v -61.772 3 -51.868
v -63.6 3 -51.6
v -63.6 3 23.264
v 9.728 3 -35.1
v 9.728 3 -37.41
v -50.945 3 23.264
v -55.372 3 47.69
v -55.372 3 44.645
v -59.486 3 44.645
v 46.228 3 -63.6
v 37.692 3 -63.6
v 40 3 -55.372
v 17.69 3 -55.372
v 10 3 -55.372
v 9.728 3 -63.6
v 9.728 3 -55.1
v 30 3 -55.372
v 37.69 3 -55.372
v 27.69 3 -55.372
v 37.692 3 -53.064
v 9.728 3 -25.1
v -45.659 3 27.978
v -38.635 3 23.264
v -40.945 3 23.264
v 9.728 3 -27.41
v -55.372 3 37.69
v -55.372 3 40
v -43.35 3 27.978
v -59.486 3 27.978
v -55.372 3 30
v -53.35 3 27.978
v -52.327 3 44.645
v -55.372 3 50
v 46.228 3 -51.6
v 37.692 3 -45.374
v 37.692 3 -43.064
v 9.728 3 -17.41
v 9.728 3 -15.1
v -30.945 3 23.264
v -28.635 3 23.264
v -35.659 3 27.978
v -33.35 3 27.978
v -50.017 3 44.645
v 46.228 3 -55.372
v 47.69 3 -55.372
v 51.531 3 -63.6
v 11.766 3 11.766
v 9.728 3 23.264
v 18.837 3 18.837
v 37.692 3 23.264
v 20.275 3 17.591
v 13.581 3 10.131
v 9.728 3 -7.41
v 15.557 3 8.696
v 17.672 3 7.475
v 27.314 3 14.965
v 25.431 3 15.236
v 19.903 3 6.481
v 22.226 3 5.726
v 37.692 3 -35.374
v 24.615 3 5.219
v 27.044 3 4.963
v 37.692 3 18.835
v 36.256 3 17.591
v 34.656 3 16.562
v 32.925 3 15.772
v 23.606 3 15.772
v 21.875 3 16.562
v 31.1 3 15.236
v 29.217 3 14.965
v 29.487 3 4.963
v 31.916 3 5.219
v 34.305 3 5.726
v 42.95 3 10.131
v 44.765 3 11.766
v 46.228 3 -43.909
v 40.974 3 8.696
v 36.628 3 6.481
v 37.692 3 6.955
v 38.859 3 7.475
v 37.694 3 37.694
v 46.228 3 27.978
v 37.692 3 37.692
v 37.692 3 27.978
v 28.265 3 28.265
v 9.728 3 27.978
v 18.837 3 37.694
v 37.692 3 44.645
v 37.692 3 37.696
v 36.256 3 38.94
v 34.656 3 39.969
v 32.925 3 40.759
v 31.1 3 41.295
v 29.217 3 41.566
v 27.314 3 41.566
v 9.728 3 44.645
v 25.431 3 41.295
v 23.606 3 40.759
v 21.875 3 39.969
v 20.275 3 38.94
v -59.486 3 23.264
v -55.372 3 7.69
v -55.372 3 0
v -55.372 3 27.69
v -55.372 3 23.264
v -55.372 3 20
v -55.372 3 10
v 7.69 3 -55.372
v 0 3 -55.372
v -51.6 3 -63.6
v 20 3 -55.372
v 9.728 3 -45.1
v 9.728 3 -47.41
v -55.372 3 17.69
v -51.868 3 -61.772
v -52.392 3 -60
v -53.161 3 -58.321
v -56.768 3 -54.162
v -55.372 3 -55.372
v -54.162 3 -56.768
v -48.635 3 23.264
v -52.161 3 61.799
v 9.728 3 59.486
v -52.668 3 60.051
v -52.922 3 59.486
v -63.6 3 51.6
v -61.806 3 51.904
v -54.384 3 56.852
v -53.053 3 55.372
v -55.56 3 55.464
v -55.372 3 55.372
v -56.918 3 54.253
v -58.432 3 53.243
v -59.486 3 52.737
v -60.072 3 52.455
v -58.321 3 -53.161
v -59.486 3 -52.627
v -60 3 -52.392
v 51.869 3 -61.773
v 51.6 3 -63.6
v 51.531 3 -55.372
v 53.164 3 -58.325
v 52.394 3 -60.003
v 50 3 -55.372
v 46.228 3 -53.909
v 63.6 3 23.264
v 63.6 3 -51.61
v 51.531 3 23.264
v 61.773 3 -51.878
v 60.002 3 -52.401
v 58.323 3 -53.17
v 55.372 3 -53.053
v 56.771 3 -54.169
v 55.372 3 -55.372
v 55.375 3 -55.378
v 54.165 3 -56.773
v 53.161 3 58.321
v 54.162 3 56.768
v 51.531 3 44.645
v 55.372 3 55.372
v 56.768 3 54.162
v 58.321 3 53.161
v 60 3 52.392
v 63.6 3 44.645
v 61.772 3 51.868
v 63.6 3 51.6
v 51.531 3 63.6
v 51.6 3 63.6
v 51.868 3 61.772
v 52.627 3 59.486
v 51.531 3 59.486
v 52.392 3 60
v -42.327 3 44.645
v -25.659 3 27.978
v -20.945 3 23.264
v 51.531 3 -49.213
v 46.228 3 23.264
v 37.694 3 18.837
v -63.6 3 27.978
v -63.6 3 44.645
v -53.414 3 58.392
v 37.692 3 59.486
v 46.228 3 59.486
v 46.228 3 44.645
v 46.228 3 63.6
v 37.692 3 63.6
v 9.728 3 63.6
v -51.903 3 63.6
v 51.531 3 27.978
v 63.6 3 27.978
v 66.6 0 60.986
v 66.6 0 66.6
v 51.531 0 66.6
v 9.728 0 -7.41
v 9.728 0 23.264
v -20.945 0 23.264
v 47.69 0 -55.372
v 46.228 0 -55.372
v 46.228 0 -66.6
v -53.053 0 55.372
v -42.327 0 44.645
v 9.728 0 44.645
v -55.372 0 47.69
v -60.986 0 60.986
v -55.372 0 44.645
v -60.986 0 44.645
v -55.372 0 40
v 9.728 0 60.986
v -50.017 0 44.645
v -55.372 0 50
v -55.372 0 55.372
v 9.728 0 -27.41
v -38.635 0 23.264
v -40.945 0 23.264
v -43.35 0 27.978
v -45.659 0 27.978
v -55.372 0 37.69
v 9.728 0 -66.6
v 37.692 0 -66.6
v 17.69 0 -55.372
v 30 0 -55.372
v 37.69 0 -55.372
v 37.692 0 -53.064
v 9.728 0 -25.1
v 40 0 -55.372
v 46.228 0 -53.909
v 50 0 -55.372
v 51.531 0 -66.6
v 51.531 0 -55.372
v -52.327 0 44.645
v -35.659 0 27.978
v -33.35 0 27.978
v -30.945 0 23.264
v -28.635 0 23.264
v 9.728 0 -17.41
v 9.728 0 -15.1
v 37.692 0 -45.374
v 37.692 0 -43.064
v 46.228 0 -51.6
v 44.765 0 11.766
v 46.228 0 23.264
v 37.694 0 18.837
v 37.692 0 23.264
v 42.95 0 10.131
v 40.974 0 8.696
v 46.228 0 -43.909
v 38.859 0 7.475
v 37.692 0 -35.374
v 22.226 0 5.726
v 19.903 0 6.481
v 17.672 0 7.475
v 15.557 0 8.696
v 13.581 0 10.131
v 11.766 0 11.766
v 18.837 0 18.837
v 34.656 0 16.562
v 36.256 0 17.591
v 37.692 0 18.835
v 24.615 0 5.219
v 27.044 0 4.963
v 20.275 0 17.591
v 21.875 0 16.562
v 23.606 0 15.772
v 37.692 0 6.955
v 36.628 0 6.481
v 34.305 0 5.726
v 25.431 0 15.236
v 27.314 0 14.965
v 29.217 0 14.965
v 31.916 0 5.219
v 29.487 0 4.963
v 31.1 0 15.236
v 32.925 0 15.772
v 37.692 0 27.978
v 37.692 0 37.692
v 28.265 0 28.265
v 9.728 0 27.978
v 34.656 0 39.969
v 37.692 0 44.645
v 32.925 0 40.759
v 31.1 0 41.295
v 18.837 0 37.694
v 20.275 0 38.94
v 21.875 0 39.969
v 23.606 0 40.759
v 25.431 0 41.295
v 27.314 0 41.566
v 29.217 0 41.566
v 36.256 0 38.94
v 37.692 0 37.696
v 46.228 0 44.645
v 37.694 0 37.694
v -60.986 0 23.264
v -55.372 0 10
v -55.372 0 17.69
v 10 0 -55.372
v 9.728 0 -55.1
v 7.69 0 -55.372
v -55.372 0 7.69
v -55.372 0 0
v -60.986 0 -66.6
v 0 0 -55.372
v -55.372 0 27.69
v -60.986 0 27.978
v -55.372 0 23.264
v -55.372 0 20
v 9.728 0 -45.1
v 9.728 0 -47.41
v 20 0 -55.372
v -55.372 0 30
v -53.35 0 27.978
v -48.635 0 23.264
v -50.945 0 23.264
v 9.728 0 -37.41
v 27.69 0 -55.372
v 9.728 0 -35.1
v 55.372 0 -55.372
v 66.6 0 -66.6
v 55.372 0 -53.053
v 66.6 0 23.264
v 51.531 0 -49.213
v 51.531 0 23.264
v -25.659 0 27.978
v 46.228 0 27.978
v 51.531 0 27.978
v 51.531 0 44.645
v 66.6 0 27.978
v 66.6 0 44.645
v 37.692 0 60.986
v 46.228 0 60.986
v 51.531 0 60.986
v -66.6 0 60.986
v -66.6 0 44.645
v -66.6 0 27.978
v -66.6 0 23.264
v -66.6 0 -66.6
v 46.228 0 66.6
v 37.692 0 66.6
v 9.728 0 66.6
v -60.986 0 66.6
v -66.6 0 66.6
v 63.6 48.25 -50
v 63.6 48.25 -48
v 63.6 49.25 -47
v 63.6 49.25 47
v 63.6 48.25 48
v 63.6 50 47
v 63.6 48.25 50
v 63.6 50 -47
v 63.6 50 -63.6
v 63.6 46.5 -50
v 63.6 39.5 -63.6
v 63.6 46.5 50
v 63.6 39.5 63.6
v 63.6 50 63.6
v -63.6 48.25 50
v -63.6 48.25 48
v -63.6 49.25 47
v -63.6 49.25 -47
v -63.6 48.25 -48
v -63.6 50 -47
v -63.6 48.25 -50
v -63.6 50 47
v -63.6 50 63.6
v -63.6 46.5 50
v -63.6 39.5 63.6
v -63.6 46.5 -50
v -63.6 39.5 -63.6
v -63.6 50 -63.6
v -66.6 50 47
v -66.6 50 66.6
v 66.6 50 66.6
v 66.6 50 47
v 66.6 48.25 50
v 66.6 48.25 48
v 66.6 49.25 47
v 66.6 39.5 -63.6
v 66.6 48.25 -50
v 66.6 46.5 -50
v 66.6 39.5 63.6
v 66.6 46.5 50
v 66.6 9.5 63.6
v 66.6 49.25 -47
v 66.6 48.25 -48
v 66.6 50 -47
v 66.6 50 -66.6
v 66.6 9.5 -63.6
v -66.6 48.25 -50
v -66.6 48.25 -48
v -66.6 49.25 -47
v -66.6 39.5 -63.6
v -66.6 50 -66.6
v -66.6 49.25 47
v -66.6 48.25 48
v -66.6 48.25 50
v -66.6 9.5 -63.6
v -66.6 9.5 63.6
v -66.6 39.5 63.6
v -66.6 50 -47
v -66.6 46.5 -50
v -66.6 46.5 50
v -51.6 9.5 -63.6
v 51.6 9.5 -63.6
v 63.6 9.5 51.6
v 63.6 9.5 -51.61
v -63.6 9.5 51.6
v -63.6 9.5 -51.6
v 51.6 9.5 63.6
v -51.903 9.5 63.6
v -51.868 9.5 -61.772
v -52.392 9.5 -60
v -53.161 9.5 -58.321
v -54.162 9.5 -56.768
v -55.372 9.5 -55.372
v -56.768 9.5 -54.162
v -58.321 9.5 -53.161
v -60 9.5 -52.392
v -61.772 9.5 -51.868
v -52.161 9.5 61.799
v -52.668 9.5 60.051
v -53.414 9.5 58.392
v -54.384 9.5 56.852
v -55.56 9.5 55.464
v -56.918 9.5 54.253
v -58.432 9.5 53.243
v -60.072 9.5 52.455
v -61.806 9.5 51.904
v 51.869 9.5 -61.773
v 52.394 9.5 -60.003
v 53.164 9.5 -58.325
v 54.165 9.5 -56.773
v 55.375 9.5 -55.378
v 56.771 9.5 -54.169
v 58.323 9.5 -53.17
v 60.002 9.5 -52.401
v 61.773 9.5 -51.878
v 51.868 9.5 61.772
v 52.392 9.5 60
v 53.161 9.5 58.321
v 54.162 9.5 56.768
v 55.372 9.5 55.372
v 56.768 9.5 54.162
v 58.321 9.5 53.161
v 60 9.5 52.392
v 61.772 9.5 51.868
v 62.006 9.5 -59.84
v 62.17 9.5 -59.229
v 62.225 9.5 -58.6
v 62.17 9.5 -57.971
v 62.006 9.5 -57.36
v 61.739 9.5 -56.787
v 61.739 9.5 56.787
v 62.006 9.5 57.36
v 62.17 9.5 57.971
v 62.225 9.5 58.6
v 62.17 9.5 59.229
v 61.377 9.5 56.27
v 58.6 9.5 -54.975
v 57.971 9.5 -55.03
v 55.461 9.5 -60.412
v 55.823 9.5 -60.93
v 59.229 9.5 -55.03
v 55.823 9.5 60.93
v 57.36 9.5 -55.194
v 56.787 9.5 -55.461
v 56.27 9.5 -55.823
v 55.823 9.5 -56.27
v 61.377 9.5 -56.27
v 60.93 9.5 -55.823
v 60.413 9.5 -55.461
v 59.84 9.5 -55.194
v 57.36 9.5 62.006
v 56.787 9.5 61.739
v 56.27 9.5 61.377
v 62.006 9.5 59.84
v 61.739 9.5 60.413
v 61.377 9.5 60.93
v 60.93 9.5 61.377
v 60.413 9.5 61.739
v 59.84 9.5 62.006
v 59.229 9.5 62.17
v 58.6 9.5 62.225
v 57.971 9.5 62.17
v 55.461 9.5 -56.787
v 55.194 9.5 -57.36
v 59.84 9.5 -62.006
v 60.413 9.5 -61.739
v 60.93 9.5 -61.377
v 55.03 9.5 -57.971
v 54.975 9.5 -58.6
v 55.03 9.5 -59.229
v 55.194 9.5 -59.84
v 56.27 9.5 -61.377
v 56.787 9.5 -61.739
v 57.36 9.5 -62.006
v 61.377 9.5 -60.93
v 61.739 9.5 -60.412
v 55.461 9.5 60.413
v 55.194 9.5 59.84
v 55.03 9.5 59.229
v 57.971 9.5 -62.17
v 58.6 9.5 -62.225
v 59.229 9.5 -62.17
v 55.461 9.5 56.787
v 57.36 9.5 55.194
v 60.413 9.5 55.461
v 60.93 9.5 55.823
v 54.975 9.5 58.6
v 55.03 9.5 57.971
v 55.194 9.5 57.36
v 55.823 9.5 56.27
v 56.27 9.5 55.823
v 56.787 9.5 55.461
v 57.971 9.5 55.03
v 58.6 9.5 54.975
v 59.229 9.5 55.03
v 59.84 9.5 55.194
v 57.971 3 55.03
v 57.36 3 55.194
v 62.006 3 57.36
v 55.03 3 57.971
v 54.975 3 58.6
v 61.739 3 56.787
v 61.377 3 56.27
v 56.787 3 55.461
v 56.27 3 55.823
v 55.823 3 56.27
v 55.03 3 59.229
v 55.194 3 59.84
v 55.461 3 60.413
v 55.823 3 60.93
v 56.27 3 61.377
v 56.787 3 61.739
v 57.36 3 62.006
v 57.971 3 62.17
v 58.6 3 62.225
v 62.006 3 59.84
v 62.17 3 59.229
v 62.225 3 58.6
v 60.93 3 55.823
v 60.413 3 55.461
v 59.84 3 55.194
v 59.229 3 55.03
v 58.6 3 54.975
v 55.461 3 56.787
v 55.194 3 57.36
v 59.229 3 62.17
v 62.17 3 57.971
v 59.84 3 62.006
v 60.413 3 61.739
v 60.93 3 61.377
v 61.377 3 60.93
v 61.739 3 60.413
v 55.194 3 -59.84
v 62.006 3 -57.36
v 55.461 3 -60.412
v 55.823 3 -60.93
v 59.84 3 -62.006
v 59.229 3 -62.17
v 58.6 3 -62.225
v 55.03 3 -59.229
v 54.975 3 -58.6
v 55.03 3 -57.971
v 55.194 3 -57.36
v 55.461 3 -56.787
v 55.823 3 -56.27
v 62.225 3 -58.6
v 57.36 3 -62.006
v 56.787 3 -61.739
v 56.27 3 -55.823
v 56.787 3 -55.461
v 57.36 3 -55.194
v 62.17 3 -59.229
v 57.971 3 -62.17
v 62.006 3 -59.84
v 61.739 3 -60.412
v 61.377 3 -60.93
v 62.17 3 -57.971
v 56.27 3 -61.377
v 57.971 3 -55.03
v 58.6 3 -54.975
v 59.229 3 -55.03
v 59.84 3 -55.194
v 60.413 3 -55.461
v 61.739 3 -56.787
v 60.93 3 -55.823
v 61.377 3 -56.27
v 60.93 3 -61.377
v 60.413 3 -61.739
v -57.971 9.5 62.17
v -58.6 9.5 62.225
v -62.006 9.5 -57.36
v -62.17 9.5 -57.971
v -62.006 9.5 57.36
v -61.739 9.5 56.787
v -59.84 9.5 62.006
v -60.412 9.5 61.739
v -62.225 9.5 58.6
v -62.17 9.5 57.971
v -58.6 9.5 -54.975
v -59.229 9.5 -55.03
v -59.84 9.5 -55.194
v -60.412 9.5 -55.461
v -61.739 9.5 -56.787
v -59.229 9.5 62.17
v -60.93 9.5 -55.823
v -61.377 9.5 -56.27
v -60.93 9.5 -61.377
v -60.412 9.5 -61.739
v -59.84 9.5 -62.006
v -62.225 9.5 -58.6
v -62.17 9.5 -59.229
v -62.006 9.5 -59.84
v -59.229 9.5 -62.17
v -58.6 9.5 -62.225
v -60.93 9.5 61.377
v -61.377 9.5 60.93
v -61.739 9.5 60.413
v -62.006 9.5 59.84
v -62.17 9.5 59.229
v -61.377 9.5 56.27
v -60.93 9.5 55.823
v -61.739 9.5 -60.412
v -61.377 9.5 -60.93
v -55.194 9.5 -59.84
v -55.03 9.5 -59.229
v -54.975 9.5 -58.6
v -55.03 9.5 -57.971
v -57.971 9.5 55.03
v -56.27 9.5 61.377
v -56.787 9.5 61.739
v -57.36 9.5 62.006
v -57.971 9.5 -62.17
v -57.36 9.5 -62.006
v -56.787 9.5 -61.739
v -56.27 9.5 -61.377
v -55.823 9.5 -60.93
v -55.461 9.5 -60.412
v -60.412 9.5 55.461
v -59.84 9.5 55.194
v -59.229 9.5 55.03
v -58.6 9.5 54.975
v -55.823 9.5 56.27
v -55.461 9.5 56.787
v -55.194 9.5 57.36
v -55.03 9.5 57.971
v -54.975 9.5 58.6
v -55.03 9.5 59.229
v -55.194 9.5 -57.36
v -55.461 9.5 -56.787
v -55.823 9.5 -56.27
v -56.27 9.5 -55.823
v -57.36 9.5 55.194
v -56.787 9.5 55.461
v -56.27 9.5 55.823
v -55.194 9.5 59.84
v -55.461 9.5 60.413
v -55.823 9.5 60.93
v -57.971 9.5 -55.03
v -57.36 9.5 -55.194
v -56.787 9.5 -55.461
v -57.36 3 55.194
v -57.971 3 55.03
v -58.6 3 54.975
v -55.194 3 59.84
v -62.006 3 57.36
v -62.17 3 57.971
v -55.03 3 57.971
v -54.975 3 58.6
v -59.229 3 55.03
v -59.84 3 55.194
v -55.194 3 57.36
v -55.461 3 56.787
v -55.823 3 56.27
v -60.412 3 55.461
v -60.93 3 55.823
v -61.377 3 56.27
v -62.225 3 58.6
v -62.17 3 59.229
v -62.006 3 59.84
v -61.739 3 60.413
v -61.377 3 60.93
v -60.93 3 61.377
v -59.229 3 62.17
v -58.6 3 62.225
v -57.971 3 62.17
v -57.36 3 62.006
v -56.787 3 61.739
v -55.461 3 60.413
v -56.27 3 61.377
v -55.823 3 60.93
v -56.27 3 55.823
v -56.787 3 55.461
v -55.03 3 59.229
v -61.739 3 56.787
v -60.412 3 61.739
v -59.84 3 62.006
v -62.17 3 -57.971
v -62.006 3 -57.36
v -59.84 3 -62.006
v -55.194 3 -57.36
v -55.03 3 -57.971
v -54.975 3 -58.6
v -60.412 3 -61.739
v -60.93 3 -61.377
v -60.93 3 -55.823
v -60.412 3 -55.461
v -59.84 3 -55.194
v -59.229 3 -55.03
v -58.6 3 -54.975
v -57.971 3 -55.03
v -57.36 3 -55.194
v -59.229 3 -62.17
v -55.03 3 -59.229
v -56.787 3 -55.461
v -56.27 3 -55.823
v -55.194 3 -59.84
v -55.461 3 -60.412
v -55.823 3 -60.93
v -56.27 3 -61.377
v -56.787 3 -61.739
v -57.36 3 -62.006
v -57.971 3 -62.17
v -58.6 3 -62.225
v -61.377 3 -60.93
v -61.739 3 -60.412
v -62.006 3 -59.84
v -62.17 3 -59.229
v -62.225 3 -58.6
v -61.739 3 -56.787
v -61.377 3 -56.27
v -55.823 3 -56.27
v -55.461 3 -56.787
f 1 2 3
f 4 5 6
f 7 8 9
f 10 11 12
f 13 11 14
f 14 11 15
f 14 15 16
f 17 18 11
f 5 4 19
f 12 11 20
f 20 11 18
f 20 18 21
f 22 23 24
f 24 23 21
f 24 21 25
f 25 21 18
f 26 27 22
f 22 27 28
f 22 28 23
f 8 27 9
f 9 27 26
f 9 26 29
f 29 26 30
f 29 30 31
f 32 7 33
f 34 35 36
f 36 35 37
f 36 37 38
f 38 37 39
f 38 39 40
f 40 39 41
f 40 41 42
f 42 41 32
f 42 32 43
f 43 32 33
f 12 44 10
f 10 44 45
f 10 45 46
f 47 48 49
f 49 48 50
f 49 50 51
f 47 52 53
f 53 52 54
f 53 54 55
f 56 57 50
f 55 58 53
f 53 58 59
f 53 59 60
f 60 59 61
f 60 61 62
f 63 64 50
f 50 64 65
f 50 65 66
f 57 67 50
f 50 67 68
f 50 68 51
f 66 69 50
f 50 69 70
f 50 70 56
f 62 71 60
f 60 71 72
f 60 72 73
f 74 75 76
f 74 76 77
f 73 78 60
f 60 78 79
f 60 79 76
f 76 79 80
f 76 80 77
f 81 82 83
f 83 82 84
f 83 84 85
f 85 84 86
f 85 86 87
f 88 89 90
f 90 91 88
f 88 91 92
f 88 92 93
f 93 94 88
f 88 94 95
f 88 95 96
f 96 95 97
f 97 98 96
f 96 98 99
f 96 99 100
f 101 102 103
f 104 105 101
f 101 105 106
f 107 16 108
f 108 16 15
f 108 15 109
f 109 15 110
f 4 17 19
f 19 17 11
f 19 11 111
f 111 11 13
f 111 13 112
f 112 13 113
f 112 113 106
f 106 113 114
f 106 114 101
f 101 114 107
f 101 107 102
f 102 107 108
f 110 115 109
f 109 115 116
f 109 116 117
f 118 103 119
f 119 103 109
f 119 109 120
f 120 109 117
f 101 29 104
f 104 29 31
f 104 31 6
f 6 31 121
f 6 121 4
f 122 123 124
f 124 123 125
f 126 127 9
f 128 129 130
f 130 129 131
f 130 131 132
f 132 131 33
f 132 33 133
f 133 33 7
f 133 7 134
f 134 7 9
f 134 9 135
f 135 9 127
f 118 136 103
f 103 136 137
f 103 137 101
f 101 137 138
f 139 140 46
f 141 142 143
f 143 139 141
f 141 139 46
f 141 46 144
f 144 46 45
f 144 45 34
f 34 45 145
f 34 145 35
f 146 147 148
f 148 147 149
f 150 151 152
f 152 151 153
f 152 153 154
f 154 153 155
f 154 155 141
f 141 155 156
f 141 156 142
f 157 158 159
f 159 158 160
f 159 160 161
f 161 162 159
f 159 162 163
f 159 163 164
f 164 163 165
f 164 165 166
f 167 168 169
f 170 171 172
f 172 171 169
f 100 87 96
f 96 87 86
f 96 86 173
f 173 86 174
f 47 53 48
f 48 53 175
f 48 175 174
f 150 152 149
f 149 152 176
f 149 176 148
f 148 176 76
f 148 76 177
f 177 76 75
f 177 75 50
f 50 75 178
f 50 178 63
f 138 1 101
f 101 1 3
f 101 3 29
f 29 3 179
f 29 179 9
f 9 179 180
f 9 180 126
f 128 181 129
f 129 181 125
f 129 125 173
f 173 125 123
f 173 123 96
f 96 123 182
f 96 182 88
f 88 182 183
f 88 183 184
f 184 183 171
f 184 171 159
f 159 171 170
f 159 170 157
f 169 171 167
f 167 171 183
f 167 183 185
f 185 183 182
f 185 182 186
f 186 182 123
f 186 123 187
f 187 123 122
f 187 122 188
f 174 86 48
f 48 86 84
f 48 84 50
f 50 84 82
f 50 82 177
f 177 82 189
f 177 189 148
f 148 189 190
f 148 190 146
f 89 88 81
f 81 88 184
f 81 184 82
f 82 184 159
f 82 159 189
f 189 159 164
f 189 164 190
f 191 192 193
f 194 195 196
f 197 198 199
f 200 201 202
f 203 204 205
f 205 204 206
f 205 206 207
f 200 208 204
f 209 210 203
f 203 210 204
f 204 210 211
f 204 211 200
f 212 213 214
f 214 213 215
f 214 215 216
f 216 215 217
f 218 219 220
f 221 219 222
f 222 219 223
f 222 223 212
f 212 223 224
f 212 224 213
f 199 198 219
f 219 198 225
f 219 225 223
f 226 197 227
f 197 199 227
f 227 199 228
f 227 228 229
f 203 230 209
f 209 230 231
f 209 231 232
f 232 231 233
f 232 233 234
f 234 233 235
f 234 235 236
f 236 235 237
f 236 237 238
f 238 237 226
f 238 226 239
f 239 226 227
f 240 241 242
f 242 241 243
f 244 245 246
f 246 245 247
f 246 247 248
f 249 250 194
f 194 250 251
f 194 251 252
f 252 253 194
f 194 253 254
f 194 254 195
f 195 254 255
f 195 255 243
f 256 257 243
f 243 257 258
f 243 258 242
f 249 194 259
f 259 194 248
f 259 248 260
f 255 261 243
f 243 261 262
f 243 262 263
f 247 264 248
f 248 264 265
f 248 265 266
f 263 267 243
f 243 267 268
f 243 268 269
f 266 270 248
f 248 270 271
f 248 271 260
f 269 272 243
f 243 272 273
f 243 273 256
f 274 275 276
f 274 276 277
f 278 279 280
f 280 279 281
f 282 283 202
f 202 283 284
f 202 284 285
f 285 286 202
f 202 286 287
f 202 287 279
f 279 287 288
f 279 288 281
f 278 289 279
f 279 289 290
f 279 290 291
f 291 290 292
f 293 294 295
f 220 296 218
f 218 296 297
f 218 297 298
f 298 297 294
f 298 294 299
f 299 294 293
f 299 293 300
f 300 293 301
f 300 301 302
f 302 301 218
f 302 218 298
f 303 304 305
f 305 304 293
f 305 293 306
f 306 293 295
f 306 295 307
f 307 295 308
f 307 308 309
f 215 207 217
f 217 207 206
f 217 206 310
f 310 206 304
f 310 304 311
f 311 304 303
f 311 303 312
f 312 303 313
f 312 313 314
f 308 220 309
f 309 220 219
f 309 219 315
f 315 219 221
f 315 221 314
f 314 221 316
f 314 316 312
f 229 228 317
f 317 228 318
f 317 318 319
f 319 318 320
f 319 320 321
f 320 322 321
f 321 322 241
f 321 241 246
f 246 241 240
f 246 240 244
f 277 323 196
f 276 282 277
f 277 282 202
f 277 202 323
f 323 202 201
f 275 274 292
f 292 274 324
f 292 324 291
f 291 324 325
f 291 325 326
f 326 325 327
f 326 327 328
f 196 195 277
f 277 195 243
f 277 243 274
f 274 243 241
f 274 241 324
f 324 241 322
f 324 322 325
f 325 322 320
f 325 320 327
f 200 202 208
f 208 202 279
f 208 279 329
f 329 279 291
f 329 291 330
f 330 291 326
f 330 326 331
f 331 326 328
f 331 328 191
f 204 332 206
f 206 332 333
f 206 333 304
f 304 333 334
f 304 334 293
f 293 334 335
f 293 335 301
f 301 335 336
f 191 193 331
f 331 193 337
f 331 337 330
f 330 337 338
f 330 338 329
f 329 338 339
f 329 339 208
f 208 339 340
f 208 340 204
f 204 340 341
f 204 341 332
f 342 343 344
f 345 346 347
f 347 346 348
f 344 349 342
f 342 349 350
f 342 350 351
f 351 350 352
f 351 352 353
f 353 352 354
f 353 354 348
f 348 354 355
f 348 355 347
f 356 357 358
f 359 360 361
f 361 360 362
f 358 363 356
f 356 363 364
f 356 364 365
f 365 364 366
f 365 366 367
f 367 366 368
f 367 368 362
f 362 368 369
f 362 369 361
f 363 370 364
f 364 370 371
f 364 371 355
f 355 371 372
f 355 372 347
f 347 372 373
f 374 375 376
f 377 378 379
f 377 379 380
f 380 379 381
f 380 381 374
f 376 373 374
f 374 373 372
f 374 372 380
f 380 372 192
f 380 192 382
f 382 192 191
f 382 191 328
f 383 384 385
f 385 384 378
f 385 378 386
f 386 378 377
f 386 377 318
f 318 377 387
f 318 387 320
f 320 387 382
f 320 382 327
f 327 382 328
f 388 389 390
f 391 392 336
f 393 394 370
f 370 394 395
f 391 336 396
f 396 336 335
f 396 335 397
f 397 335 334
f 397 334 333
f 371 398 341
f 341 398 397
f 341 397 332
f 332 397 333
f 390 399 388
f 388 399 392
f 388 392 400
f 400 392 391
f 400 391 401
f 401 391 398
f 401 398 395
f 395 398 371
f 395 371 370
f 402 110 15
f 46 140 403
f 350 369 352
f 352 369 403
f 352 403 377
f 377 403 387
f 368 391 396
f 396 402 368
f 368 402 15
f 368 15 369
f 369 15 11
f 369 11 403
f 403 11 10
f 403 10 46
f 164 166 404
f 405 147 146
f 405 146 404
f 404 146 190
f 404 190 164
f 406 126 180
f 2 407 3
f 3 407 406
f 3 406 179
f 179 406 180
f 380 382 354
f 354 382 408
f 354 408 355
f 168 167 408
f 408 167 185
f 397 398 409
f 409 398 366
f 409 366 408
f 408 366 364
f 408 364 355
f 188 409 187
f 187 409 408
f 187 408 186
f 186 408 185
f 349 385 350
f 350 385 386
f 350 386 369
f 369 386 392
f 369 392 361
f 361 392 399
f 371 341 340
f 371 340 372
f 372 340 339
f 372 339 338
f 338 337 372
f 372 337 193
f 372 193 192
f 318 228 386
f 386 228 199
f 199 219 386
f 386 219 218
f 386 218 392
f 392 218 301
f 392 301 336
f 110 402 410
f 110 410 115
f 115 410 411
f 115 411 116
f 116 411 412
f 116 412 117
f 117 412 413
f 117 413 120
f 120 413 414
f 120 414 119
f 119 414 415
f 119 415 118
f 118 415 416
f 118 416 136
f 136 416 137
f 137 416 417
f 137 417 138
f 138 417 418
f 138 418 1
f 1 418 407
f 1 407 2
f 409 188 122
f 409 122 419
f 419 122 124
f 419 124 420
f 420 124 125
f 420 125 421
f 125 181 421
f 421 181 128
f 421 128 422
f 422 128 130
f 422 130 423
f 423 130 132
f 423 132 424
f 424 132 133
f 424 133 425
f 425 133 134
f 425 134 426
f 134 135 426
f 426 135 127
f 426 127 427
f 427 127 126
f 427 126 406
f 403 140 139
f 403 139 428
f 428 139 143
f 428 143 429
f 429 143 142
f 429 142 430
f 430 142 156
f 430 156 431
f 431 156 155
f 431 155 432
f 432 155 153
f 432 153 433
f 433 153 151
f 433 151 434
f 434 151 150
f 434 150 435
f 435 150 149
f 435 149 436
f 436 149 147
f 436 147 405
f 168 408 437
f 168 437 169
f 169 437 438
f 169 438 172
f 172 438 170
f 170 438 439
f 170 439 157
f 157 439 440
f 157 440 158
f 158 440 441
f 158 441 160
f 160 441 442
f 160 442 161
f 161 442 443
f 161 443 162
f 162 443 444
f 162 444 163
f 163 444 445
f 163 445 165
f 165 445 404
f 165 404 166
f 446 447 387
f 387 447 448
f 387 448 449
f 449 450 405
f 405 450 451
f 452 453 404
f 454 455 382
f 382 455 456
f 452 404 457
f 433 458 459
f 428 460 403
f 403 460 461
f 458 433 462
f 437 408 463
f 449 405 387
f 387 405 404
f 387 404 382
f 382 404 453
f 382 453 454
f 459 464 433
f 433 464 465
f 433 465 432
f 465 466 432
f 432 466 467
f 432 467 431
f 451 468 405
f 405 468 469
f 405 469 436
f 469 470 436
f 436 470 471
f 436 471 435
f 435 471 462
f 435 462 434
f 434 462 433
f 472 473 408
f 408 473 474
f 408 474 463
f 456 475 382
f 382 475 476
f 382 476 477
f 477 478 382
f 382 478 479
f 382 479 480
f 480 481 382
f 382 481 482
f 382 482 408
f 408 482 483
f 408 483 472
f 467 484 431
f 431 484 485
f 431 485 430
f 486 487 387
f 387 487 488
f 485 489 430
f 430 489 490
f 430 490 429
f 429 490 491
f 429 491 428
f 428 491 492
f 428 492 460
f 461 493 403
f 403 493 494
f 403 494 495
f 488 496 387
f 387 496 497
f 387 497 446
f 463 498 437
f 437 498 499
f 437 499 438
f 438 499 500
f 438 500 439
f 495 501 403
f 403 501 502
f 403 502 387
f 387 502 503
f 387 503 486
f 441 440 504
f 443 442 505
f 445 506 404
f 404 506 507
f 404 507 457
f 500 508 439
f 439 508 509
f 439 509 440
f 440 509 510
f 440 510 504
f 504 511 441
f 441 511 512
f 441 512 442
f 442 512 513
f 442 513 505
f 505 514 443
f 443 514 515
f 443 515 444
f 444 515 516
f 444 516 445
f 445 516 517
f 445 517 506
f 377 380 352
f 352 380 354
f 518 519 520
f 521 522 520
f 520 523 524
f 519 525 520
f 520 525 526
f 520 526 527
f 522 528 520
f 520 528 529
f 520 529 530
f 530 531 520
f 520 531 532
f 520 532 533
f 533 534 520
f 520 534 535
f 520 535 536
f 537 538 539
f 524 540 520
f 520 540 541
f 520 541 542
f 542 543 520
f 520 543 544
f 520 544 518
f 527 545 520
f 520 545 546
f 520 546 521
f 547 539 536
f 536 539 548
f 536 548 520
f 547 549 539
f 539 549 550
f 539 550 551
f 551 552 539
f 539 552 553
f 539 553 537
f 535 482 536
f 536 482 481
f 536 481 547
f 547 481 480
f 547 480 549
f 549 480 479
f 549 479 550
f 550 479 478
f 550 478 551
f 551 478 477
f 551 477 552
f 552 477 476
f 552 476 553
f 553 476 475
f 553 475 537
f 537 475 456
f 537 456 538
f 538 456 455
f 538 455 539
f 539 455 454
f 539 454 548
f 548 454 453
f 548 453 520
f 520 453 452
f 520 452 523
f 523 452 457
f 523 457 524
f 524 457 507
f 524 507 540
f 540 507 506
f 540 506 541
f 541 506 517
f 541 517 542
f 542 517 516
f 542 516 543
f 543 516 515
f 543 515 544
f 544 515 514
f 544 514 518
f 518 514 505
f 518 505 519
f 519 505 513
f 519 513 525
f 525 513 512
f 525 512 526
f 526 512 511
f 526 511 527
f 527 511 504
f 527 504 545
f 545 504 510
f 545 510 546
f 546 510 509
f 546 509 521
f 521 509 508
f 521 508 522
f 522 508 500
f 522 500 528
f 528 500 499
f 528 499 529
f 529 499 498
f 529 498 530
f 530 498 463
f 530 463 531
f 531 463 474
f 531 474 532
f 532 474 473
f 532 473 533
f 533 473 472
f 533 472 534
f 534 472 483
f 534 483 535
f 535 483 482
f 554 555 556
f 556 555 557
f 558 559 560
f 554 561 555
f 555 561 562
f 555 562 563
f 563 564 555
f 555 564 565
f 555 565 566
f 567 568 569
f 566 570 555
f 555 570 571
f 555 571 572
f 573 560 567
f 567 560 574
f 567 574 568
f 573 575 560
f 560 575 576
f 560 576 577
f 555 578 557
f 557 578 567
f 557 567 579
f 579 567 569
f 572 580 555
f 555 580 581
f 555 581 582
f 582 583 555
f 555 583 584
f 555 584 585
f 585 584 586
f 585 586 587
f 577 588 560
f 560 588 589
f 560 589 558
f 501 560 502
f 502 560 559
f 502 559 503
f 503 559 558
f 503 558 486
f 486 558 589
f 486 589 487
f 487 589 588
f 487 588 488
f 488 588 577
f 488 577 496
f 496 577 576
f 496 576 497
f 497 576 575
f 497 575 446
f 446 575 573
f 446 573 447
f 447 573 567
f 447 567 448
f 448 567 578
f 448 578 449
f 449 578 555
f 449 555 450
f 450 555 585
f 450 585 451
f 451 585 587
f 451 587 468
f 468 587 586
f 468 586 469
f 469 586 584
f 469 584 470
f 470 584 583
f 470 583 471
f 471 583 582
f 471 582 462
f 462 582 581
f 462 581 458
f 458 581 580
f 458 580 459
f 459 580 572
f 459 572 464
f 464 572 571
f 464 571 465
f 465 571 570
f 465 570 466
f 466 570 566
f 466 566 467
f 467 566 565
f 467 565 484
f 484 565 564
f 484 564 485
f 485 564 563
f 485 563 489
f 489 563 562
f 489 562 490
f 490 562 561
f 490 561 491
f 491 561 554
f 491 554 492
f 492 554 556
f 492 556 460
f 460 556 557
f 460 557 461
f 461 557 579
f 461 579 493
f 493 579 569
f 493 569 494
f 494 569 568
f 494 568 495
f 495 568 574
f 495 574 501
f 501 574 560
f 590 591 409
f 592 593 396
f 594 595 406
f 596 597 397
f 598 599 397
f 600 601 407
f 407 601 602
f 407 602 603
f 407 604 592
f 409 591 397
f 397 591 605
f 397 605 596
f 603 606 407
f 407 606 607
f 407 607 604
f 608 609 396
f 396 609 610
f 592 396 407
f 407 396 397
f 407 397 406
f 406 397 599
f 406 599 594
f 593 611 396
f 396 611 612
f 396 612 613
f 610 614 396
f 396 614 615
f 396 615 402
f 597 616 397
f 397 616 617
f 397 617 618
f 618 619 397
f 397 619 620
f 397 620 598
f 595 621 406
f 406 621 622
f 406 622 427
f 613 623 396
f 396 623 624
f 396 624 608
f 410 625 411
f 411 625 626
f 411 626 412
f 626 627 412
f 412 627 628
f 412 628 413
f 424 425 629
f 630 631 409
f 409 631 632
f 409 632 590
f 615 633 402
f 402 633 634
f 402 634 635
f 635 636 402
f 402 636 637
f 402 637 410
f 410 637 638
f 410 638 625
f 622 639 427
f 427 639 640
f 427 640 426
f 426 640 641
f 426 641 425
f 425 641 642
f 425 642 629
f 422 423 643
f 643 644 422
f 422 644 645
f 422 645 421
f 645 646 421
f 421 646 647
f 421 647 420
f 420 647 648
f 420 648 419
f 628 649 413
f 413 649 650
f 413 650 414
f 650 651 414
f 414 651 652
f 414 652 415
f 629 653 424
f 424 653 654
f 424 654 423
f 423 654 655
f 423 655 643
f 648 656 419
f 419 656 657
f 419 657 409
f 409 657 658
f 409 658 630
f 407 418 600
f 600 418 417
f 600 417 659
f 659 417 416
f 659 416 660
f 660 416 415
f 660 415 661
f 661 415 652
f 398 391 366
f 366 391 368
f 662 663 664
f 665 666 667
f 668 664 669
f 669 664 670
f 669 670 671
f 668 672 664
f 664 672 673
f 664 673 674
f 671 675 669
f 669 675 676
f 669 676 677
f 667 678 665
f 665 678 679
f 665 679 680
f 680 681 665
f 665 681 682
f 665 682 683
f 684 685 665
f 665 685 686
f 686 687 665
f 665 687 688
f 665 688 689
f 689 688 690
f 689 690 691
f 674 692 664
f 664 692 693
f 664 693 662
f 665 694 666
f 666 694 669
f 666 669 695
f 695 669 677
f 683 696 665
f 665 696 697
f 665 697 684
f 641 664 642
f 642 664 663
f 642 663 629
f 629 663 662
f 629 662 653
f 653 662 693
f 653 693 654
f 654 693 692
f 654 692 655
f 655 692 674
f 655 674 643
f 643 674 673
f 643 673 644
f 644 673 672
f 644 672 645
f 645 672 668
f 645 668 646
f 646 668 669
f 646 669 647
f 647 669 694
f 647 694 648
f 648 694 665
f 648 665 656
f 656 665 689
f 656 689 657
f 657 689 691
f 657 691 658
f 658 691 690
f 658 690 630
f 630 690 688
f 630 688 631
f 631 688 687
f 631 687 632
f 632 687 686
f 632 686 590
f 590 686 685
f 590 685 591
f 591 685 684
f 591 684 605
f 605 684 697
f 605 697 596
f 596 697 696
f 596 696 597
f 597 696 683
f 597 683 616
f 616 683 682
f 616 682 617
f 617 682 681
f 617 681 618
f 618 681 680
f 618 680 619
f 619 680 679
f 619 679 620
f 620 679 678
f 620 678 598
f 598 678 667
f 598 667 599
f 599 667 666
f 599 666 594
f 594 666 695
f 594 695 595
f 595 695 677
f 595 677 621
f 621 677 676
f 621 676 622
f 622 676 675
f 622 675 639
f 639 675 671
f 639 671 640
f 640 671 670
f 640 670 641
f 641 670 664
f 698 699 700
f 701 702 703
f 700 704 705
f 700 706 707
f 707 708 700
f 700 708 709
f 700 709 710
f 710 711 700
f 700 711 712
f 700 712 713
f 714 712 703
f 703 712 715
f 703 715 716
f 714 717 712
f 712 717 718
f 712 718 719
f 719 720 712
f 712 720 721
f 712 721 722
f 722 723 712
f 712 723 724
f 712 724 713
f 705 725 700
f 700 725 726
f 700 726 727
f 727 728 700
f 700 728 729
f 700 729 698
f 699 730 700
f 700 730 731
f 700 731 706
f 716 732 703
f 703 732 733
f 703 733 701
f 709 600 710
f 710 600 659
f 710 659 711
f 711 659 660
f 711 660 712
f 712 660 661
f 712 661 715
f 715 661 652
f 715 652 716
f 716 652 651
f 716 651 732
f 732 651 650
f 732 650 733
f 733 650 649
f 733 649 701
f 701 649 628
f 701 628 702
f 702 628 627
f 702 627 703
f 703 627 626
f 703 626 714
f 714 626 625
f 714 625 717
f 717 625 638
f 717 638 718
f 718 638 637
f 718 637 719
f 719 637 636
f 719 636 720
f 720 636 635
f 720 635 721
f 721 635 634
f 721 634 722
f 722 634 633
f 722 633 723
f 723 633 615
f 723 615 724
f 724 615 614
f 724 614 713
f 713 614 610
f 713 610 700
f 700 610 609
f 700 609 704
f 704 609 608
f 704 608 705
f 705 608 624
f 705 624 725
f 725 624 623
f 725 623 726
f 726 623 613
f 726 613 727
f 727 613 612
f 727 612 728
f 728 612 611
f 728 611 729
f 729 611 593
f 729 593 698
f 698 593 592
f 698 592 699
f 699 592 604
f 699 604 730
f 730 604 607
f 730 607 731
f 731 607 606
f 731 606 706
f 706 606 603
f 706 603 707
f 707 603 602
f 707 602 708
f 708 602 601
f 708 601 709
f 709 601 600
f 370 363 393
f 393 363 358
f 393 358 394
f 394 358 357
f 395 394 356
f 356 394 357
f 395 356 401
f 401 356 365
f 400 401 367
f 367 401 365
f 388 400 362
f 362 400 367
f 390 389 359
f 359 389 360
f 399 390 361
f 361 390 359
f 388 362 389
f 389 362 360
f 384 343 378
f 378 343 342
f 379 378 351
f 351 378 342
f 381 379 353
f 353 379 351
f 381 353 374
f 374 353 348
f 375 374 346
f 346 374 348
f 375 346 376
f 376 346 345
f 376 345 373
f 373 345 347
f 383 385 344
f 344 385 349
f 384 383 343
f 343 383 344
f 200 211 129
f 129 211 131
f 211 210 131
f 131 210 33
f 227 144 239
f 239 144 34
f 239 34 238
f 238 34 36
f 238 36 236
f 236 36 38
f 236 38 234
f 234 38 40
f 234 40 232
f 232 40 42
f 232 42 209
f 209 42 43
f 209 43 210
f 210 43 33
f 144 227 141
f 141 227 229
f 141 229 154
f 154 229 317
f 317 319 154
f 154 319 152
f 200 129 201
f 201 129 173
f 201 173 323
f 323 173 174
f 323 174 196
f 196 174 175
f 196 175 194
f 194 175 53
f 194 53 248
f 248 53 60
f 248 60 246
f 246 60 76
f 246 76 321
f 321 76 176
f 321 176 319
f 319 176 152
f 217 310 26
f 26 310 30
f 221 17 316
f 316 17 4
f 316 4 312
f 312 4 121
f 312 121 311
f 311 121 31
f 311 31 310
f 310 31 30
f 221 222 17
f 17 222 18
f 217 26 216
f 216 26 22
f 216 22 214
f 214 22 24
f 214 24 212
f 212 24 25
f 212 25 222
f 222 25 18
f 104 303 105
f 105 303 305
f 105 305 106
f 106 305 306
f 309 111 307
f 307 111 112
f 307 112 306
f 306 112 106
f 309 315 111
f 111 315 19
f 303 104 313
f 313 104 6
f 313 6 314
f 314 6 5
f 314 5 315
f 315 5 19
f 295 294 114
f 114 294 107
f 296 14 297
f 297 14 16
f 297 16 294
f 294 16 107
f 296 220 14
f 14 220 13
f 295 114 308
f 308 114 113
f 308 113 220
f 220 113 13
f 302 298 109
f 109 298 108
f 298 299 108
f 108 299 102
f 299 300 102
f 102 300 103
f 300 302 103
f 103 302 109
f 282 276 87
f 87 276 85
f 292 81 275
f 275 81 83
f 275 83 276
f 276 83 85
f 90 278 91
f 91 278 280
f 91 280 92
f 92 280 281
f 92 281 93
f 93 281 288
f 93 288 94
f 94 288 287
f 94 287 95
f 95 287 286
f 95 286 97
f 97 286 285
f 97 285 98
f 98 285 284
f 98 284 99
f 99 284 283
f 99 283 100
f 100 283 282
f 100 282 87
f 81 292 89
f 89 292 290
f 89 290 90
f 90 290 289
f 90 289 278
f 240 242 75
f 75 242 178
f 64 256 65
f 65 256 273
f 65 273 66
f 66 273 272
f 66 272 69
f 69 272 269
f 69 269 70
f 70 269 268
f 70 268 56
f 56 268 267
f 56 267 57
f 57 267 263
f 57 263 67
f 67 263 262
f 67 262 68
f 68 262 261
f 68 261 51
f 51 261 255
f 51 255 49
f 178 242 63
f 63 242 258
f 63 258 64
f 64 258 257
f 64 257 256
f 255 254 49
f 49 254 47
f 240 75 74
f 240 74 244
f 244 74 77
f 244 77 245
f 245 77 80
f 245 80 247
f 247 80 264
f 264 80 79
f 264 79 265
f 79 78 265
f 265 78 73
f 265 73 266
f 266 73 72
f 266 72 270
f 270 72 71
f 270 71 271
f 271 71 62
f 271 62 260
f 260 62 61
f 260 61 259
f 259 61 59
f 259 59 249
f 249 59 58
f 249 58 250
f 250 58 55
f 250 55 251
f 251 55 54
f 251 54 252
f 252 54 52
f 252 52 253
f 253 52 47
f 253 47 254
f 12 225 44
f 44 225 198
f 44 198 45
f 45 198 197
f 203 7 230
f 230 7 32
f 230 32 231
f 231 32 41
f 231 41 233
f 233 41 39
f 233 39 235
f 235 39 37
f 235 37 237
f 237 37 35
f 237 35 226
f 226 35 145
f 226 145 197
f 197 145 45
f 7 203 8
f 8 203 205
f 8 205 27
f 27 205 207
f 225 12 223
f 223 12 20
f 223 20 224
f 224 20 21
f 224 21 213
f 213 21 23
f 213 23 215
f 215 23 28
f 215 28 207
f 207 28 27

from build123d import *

# Parameters (mm, degrees)
SKETCH1_W                = 133.2
SKETCH1_H                = 133.2
SKETCH1_W_2              = 127.2
SKETCH1_H_2              = 127.2
BOSS_EXTRUDE1_DEPTH      = 50
SKETCH2_W                = 127.2
SKETCH2_H                = 127.2
BOSS_EXTRUDE2_DEPTH      = 3
BOSS_EXTRUDE4_DEPTH      = 7
BOSS_EXTRUDE4_DEPTH_BACK = 3
SKETCH3_R                = 3.625
SKETCH4_W                = 127.2
SKETCH4_H                = 30
CUT_EXTRUDE2_DEPTH       = 158.091692969
CUT_EXTRUDE3_DEPTH       = 158.091692969
CUT_EXTRUDE6_DEPTH       = 106.262148943


with BuildPart() as part:
    # Sketch1 → Boss-Extrude1 (new body)
    with BuildSketch(Plane(origin=(0, 0, 0), x_dir=(1, 0, 0), z_dir=(0, 1, 0))):
        Rectangle(SKETCH1_W, SKETCH1_H)
        Rectangle(SKETCH1_W_2, SKETCH1_H_2, mode=Mode.SUBTRACT)
    extrude(amount=BOSS_EXTRUDE1_DEPTH)

    # Sketch2 → Boss-Extrude2 (add)
    with BuildSketch(Plane(origin=(0, 0, 0), x_dir=(1, 0, 0), z_dir=(0, 1, 0))):
        Rectangle(SKETCH2_W, SKETCH2_H)
    extrude(amount=BOSS_EXTRUDE2_DEPTH)

    # Sketch3 → Boss-Extrude4 (add, two sides: drawn at the far end of the back side and taken through both)
    # profile 1 of 4: a face of its own
    with BuildSketch(Plane(origin=(0, 3, 0), x_dir=(1, 0, 0), z_dir=(0, 1, 0)).offset(-BOSS_EXTRUDE4_DEPTH_BACK)):
        with BuildLine():
            ThreePointArc((-63.6, 51.6), (-55.371805983, 55.371805983), (-51.6, 63.6))
            Line((-51.6, 63.6), (-63.6, 63.6))
            Line((-63.6, 63.6), (-63.6, 51.6))
        make_face()
        with Locations(Location((-58.6, 58.6, 0), (0, 0, 270))):
            Circle(SKETCH3_R, mode=Mode.SUBTRACT)
    # profile 2 of 4: a face of its own
    with BuildSketch(Plane(origin=(0, 3, 0), x_dir=(1, 0, 0), z_dir=(0, 1, 0)).offset(-BOSS_EXTRUDE4_DEPTH_BACK)):
        with BuildLine():
            ThreePointArc((-51.902705138, -63.6), (-55.559775075, -55.463705987), (-63.6, -51.6))
            Line((-63.6, -51.6), (-63.6, -63.6))
            Line((-63.6, -63.6), (-51.902705138, -63.6))
        make_face()
        with Locations(Location((-58.6, -58.6, 0), (0, 0, 90))):
            Circle(SKETCH3_R, mode=Mode.SUBTRACT)
    # profile 3 of 4: a face of its own
    with BuildSketch(Plane(origin=(0, 3, 0), x_dir=(1, 0, 0), z_dir=(0, 1, 0)).offset(-BOSS_EXTRUDE4_DEPTH_BACK)):
        with BuildLine():
            Line((63.6, 63.6), (51.6, 63.6))
            ThreePointArc((51.6, 63.6), (55.375031477, 55.378323531), (63.6, 51.610470108))
            Line((63.6, 51.610470108), (63.6, 63.6))
        make_face()
        with Locations(Location((58.6, 58.6, 0), (0, 0, 90))):
            Circle(SKETCH3_R, mode=Mode.SUBTRACT)
    # profile 4 of 4: a face of its own
    with BuildSketch(Plane(origin=(0, 3, 0), x_dir=(1, 0, 0), z_dir=(0, 1, 0)).offset(-BOSS_EXTRUDE4_DEPTH_BACK)):
        with BuildLine():
            Line((63.6, -63.6), (63.6, -51.6))
            ThreePointArc((63.6, -51.6), (55.371805983, -55.371805983), (51.6, -63.6))
            Line((51.6, -63.6), (63.6, -63.6))
        make_face()
        with Locations(Location((58.6, -58.6, 0), (0, 0, 270))):
            Circle(SKETCH3_R, mode=Mode.SUBTRACT)
    extrude(amount=BOSS_EXTRUDE4_DEPTH + BOSS_EXTRUDE4_DEPTH_BACK)

    # Sketch4 → Cut-Extrude2 (cut, through all)
    with BuildSketch(Plane(origin=(66.6, 0, 0), x_dir=(0, 0, -1), z_dir=(1, 0, 0))):
        with Locations((0, 24.5)):
            Rectangle(SKETCH4_W, SKETCH4_H)
    extrude(amount=-CUT_EXTRUDE2_DEPTH, mode=Mode.SUBTRACT)

    # Sketch5 → Cut-Extrude3 (cut, through all)
    with BuildSketch(Plane(origin=(66.6, 0, 0), x_dir=(0, 0, -1), z_dir=(1, 0, 0))):
        Polygon((-50, 48.25), (-50, 46.5), (50, 46.5), (50, 48.25), (48, 48.25), (47, 49.25), (47, 50), (-47, 50), (-47, 49.25), (-48, 48.25), align=None)
    extrude(amount=-CUT_EXTRUDE3_DEPTH, mode=Mode.SUBTRACT)

    # Sketch6 → Cut-Extrude6 (cut, through all)
    with BuildSketch(Plane(origin=(0, 3, 0), x_dir=(1, 0, 0), z_dir=(0, 1, 0))):
        Polygon((-53.053423166, -55.371805983), (-55.371805983, -55.371805983), (-55.371805983, -50), (-5.371805983, 0), (50, 55.371805983), (55.371805983, 55.371805983), (55.371805983, 53.053423166), (53.8450944, 51.526711583), (-1.526711583, -3.8450944), (-5.371805983, -7.690188801), align=None)
        Polygon((-55.371805983, -37.690188801), (-55.371805983, -30), (-25.371805983, 0), (30, 55.371805983), (37.690188801, 55.371805983), (33.8450944, 51.526711583), (-21.526711583, -3.8450944), (-25.371805983, -7.690188801), align=None)
        Polygon((-55.371805983, -27.690188801), (-55.371805983, -20), (-35.371805983, 0), (20, 55.371805983), (27.690188801, 55.371805983), (23.8450944, 51.526711583), (-31.526711583, -3.8450944), (-35.371805983, -7.690188801), align=None)
        Polygon((-55.371805983, -17.690188801), (-55.371805983, -10), (-45.371805983, 0), (10, 55.371805983), (17.690188801, 55.371805983), (13.8450944, 51.526711583), (-41.526711583, -3.8450944), (-45.371805983, -7.690188801), align=None)
        Polygon((0, 55.371805983), (7.690188801, 55.371805983), (3.8450944, 51.526711583), (-51.526711583, -3.8450944), (-55.371805983, -7.690188801), (-55.371805983, 0), align=None)
        with BuildLine():
            ThreePointArc((18.836860938, -37.694136454), (28.265498696, -41.599606087), (37.694136454, -37.694136454))
            Line((37.694136454, -37.694136454), (28.265498696, -28.265498696))
            Line((28.265498696, -28.265498696), (18.836860938, -37.694136454))
        make_face()
        with BuildLine():
            Line((41.229670359, -15.301327032), (44.765204265, -11.765793127))
            ThreePointArc((44.765204265, -11.765793127), (28.265498696, -4.931391304), (11.765793127, -11.765793127))
            Line((11.765793127, -11.765793127), (15.301327032, -15.301327032))
            Line((15.301327032, -15.301327032), (18.836860938, -18.836860938))
            ThreePointArc((18.836860938, -18.836860938), (28.265498696, -14.931391304), (37.694136454, -18.836860938))
            Line((37.694136454, -18.836860938), (41.229670359, -15.301327032))
        make_face()
        Polygon((-15.371805983, 0), (-55.371805983, -40), (-55.371805983, -47.690188801), (-15.371805983, -7.690188801), (-11.526711583, -3.8450944), (43.8450944, 51.526711583), (47.690188801, 55.371805983), (40, 55.371805983), align=None)
    extrude(amount=-CUT_EXTRUDE6_DEPTH, mode=Mode.SUBTRACT)


solid = part.part
